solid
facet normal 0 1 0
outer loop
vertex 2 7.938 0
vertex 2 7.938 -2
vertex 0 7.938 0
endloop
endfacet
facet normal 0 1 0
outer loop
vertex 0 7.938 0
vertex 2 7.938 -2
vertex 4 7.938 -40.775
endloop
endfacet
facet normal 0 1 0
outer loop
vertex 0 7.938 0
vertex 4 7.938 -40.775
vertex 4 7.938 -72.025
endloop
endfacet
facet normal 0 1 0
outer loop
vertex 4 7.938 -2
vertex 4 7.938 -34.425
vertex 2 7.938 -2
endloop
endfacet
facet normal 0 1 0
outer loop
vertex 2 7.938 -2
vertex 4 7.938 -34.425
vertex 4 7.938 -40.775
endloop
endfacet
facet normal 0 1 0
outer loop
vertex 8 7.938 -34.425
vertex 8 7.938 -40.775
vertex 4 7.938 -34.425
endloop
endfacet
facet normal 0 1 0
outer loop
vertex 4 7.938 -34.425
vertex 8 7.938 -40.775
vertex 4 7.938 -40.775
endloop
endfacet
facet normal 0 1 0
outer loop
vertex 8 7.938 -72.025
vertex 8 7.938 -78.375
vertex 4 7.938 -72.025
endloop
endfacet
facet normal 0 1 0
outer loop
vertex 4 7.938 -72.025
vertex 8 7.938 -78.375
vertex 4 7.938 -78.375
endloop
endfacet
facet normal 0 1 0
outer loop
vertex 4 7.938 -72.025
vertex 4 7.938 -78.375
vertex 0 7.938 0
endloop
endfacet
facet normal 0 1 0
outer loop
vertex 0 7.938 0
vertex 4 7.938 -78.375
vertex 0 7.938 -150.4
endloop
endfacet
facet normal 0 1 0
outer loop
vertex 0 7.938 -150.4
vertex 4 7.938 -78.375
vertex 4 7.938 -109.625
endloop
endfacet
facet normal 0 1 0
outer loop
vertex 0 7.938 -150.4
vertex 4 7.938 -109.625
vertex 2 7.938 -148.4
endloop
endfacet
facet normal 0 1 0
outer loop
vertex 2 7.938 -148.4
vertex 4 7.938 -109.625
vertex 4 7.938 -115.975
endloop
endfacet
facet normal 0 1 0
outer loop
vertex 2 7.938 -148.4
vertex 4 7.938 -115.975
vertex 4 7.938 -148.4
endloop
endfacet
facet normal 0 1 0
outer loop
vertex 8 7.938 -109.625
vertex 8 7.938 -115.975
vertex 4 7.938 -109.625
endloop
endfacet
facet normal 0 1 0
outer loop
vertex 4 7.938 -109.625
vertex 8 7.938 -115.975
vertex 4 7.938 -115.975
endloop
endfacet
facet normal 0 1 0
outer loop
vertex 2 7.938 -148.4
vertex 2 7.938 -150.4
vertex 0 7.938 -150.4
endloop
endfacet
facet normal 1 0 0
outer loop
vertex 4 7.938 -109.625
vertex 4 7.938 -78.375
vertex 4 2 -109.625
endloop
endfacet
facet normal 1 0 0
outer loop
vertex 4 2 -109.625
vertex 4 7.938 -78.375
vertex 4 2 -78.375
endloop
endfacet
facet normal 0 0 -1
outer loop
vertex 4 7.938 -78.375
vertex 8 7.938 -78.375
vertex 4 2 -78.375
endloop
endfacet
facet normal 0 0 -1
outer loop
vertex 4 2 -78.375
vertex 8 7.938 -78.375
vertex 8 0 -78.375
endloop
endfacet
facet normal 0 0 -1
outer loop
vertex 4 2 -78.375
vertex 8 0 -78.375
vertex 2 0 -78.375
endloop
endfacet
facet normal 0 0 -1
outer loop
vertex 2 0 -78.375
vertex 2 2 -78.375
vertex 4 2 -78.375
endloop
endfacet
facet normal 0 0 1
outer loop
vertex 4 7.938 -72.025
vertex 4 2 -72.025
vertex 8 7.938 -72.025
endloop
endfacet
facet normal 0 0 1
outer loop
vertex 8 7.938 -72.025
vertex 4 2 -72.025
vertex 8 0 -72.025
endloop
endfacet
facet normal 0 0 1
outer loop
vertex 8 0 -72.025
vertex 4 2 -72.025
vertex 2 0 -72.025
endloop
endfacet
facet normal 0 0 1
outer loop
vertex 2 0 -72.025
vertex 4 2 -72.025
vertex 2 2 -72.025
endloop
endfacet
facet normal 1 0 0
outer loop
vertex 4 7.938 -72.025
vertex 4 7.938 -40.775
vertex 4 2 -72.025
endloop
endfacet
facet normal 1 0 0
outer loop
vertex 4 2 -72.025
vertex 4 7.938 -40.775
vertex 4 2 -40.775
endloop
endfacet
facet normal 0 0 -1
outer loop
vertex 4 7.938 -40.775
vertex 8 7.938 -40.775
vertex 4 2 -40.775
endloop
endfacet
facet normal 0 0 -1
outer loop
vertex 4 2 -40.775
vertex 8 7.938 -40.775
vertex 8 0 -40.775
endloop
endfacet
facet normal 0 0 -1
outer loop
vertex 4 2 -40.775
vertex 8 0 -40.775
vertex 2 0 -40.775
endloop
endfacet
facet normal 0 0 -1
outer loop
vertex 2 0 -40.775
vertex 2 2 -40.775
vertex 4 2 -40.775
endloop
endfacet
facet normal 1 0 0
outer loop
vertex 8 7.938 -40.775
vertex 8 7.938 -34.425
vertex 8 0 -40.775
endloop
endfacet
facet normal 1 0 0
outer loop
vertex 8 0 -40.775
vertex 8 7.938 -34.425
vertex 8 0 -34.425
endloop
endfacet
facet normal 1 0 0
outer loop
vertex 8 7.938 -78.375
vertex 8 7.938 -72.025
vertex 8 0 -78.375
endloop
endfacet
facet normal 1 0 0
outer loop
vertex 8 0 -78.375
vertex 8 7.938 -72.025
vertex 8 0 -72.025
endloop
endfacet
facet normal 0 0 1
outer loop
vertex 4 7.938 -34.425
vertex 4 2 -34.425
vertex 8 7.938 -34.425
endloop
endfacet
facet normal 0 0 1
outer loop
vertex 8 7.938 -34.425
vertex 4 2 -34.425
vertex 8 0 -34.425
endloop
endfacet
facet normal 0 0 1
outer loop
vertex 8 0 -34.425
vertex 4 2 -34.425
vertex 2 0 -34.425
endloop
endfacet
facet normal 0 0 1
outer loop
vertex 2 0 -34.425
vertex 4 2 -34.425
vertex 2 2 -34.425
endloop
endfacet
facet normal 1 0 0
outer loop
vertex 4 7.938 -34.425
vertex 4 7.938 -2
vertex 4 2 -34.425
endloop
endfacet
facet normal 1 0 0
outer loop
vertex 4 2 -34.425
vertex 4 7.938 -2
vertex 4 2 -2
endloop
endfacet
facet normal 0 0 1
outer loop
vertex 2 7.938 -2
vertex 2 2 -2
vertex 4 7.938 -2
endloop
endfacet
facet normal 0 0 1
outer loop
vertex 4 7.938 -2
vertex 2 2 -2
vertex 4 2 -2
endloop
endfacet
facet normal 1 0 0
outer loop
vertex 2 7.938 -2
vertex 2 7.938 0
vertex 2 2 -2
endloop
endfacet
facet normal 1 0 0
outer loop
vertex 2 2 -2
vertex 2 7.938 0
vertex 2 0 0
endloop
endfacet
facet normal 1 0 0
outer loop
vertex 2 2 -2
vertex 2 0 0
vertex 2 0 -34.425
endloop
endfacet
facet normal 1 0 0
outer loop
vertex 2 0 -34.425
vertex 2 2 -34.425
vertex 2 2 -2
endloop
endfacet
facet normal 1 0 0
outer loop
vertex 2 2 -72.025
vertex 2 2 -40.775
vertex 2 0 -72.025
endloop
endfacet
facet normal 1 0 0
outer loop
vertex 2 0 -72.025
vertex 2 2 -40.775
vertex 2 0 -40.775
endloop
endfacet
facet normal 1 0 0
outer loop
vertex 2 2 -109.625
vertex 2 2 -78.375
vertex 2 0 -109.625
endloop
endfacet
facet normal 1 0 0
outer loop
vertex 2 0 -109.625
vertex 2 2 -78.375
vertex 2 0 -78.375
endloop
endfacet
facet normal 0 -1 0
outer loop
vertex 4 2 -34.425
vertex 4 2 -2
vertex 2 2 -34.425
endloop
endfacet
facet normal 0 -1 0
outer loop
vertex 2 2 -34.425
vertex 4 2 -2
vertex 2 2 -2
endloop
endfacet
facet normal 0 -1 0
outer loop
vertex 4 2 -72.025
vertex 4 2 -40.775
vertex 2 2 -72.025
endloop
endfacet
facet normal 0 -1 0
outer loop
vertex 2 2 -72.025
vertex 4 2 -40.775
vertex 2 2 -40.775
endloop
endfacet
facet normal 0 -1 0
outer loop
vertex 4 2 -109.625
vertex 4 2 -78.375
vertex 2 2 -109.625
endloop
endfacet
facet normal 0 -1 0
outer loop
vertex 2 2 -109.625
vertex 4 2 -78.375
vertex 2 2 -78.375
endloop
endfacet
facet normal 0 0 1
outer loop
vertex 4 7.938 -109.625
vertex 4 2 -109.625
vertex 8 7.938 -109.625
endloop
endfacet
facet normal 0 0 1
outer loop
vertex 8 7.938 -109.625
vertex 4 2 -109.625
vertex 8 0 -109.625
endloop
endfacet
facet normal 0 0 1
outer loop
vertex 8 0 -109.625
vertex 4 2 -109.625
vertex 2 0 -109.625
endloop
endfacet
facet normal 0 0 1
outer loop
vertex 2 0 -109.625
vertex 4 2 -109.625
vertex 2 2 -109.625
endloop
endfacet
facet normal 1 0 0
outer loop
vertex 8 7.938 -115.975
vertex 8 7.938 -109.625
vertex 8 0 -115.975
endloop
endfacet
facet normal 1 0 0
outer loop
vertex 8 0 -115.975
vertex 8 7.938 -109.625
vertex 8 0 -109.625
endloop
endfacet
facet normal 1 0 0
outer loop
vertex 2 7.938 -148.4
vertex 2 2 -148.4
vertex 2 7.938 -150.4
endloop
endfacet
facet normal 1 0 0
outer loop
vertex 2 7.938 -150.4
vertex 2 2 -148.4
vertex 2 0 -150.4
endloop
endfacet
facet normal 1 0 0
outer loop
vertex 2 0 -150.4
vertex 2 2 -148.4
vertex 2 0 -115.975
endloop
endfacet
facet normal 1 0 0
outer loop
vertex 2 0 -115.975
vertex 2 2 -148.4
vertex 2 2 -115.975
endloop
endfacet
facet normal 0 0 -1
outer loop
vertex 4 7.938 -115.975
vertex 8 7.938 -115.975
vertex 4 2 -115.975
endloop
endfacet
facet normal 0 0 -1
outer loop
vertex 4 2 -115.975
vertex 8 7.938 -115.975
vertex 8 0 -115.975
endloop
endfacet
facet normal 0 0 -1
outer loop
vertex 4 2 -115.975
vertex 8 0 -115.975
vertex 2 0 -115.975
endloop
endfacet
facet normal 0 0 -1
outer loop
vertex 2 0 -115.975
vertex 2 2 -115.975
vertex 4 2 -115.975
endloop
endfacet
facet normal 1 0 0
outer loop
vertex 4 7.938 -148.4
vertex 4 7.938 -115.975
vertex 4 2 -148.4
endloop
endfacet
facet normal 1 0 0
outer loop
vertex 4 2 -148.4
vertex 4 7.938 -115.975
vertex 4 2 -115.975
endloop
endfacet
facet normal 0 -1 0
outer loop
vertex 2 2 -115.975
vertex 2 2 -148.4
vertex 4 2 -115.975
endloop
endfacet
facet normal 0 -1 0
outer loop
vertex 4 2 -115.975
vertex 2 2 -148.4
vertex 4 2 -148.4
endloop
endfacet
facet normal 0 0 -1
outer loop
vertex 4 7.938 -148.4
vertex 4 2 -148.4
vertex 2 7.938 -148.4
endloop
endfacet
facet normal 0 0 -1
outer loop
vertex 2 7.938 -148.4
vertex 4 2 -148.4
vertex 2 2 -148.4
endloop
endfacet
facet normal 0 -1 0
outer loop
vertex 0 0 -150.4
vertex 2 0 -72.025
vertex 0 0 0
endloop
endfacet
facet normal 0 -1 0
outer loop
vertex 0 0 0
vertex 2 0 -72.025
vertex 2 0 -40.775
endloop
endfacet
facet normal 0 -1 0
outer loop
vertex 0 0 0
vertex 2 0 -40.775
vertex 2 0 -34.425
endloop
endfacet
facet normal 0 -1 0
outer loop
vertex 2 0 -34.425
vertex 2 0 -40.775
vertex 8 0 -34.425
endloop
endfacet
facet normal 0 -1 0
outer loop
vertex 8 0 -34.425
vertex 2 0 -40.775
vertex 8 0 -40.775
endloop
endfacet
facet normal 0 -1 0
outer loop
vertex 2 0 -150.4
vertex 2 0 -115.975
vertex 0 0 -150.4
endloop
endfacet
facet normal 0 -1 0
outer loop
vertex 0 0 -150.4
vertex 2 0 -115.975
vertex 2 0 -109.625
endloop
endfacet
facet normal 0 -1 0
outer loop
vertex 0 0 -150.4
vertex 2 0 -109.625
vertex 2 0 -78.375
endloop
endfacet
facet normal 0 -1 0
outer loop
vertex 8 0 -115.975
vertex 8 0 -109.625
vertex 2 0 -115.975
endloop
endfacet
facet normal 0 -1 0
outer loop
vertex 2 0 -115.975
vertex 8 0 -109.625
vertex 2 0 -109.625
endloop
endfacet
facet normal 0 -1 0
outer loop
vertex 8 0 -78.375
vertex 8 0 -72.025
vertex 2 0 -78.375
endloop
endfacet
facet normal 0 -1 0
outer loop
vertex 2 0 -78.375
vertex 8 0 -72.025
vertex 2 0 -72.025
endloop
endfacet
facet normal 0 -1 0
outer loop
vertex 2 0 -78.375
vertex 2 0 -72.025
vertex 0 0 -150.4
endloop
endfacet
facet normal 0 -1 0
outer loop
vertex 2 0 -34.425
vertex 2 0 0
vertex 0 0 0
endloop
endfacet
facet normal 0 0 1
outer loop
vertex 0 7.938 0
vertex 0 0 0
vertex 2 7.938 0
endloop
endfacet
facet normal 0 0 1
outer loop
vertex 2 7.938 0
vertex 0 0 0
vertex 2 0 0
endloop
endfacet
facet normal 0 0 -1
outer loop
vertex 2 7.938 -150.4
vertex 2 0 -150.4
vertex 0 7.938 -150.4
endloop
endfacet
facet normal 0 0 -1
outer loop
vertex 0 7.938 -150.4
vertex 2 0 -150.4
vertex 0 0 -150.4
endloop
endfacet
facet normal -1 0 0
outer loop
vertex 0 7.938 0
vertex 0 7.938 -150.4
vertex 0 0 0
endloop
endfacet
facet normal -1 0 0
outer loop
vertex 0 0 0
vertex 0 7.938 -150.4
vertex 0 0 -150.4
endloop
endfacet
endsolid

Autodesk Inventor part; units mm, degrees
ref_plane "YZ Plane" through (0, 0, 0) normal (1, 0, 0) x (0, 1, 0)
ref_plane "XZ Plane" through (0, 0, 0) normal (0, 1, 0) x (-1, 0, 0)
ref_plane "XY Plane" through (0, 0, 0) normal (0, 0, 1) x (1, 0, 0)
sketch "Sketch1" plane through (0, 0, 0) normal (1, 0, 0) x (0, 1, 0)
  line L0 (0, 0) -> (69.85, 0)
  line L1 (69.85, 0) -> (69.85, -150.4)
  line L2 (69.85, -150.4) -> (0, -150.4)
  line L3 (0, -150.4) -> (0, 0)
  dimension "d0" = 69.85
  dimension "d1" = 150.4
extrude "Extrusion1" add sketch "Sketch1" along normal blind 2
sketch "Sketch2" plane through (2, 0, 0) normal (1, 0, 0) x (0, 0, -1)
  line L0 (150.4, 0) -> (150.4, 69.85) projected
  line L1 (150.4, 69.85) -> (0, 69.85) projected
  line L2 (0, 69.85) -> (0, 0) projected
  line L3 (0, 0) -> (150.4, 0) projected
  line L4 (150.4, 69.85) -> (148.4, 69.85)
  line L5 (148.4, 69.85) -> (148.4, 0)
  line L6 (148.4, 0) -> (150.4, 0)
  line L7 (150.4, 0) -> (150.4, 69.85)
  line L8 (0, 69.85) -> (2, 69.85)
  line L9 (2, 69.85) -> (2, 0)
  line L10 (2, 0) -> (0, 0)
  line L11 (0, 0) -> (0, 69.85)
  line L12 (0, 0) -> (150.4, 0)
  line L13 (150.4, 0) -> (150.4, 2)
  line L14 (150.4, 2) -> (0, 2)
  line L15 (0, 2) -> (0, 0)
  point P0 (2, 2)
  point P1 (148.4, 2)
  dimension "d4" = 2
  dimension "d5" = 2
  dimension "d6" = 2
extrude "Extrusion2" add sketch "Sketch2" along normal blind 2 contours L14 L9 L1 L5
sketch "Sketch3" plane through (4, 0, 0) normal (1, 0, 0) x (0, 0, -1)
  line L0 (150.4, 0) -> (150.4, 69.85) projected
  line L1 (0, 0) -> (150.4, 0) projected
  line L2 (0, 69.85) -> (0, 0) projected
  line L3 (150.4, 69.85) -> (0, 69.85) projected
  line L4 (0, 69.85) -> (75.2, 69.85) construction
  line L5 (75.2, 69.85) -> (75.2, 0) construction
  line L6 (75.2, 0) -> (0, 0) construction
  line L7 (0, 0) -> (0, 69.85) construction
  line L8 (0, 0) -> (150.4, 0) construction
  line L9 (0, 0) -> (37.6, 0) construction
  line L10 (37.6, 0) -> (37.6, 69.85) construction
  line L11 (37.6, 69.85) -> (0, 69.85) construction
  line L12 (0, 69.85) -> (0, 0) construction
  line L13 (150.4, 0) -> (150.4, 69.85) construction
  line L14 (75.2, 69.85) -> (150.4, 69.85) construction
  line L15 (150.4, 69.85) -> (150.4, 0) construction
  line L16 (150.4, 0) -> (75.2, 0) construction
  line L17 (75.2, 0) -> (75.2, 69.85) construction
  line L18 (75.2, 0) -> (112.8, 0) construction
  line L19 (112.8, 0) -> (112.8, 69.85) construction
  line L20 (112.8, 69.85) -> (75.2, 69.85) construction
  line L21 (75.2, 69.85) -> (75.2, 0) construction
  line L22 (34.425, 0) -> (34.425, 69.85) construction
  line L23 (34.425, 69.85) -> (40.775, 69.85) construction
  line L24 (40.775, 69.85) -> (40.775, 0) construction
  line L25 (40.775, 0) -> (34.425, 0) construction
  line L26 (34.425, 0) -> (40.775, 69.85) construction
  line L27 (34.425, 69.85) -> (40.775, 0) construction
  line L28 (72.025, 0) -> (72.025, 69.85) construction
  line L29 (72.025, 69.85) -> (78.375, 69.85) construction
  line L30 (78.375, 69.85) -> (78.375, 0) construction
  line L31 (78.375, 0) -> (72.025, 0) construction
  line L32 (72.025, 0) -> (78.375, 69.85) construction
  line L33 (72.025, 69.85) -> (78.375, 0) construction
  line L34 (109.625, 0) -> (109.625, 69.85) construction
  line L35 (109.625, 69.85) -> (115.975, 69.85) construction
  line L36 (115.975, 69.85) -> (115.975, 0) construction
  line L37 (115.975, 0) -> (109.625, 0) construction
  line L38 (109.625, 0) -> (115.975, 69.85) construction
  line L39 (109.625, 69.85) -> (115.975, 0) construction
  line L40 (34.425, 69.85) -> (40.775, 69.85)
  line L41 (40.775, 69.85) -> (40.775, 0)
  line L42 (40.775, 0) -> (34.425, 0)
  line L43 (34.425, 0) -> (34.425, 69.85)
  line L44 (72.025, 0) -> (78.375, 0)
  line L45 (78.375, 0) -> (78.375, 69.85)
  line L46 (78.375, 69.85) -> (72.025, 69.85)
  line L47 (72.025, 69.85) -> (72.025, 0)
  line L48 (109.625, 69.85) -> (115.975, 69.85)
  line L49 (115.975, 69.85) -> (115.975, 0)
  line L50 (115.975, 0) -> (109.625, 0)
  line L51 (109.625, 0) -> (109.625, 69.85)
  point P0 (37.6, 34.925)
  point P1 (75.2, 34.925)
  point P2 (112.8, 34.925)
  dimension "d9" = 6.35
  dimension "d10" = 6.35
  dimension "d11" = 6.35
extrude "Extrusion3" add sketch "Sketch3" along normal blind 4 contours L1 L51 L3 L49 | L1 L47 L3 L45 | L1 L43 L3 L41
sketch "Sketch4" plane through (0, 69.85, 0) normal (0, 1, 0) x (1, 0, 0)
  line L0 (0, 150.4) -> (0, 0) projected
  line L1 (0, 150.4) -> (0, 0) construction
  line L2 (0, 0) -> (2, 0) construction
  line L3 (2, 2) -> (2, 0) construction
  line L4 (2, 2) -> (4, 2) construction
  line L5 (4, 34.425) -> (4, 2) construction
  line L6 (4, 34.425) -> (8, 34.425) construction
  line L7 (8, 40.775) -> (8, 34.425) construction
  line L8 (4, 40.775) -> (8, 40.775) construction
  line L9 (4, 72.025) -> (4, 40.775) construction
  line L10 (4, 72.025) -> (8, 72.025) construction
  line L11 (8, 78.375) -> (8, 72.025) construction
  line L12 (4, 78.375) -> (8, 78.375) construction
  line L13 (4, 109.625) -> (4, 78.375) construction
  line L14 (4, 109.625) -> (8, 109.625) construction
  line L15 (8, 115.975) -> (8, 109.625) construction
  line L16 (4, 115.975) -> (8, 115.975) construction
  line L17 (4, 148.4) -> (4, 115.975) construction
  line L18 (2, 148.4) -> (4, 148.4) construction
  line L19 (2, 150.4) -> (2, 148.4) construction
  line L20 (0, 150.4) -> (2, 150.4) construction
  line L21 (2, 0) -> (0, 0)
  line L22 (0, 0) -> (0, 150.4)
  line L23 (0, 150.4) -> (2, 150.4)
  line L24 (2, 150.4) -> (2, 0)
  line L25 (2, 0) -> (8, 0)
  line L26 (8, 0) -> (8, 150.4)
  line L27 (8, 150.4) -> (2, 150.4)
  line L28 (2, 150.4) -> (2, 0)
extrude "Extrusion4" cut sketch "Sketch4" against normal blind 2 contours L27 L26 L25 L24
sketch "Sketch5" plane through (0, 67.85, 0) normal (0, 1, 0) x (1, 0, 0)
  line L0 (4, 115.975) -> (8, 115.975) projected
  line L1 (4, 148.4) -> (4, 115.975) projected
  line L2 (2, 148.4) -> (4, 148.4) projected
  line L3 (2, 2) -> (2, 148.4) projected
  line L4 (4, 2) -> (2, 2) projected
  line L5 (4, 34.425) -> (4, 2) projected
  line L6 (8, 34.425) -> (4, 34.425) projected
  line L7 (8, 40.775) -> (8, 34.425) projected
  line L8 (4, 40.775) -> (8, 40.775) projected
  line L9 (4, 72.025) -> (4, 40.775) projected
  line L10 (8, 72.025) -> (4, 72.025) projected
  line L11 (8, 78.375) -> (8, 72.025) projected
  line L12 (4, 78.375) -> (8, 78.375) projected
  line L13 (4, 109.625) -> (4, 78.375) projected
  line L14 (8, 109.625) -> (4, 109.625) projected
  line L15 (8, 115.975) -> (8, 109.625) projected
  line L16 (2, 2) -> (4, 2) projected
  line L17 (2, 2) -> (8, 2)
  line L18 (8, 2) -> (8, 148.4)
  line L19 (8, 148.4) -> (2, 148.4)
  line L20 (2, 148.4) -> (2, 2)
  point P0 (0, 0)
  point P1 (4, 2)
extrude "Extrusion5" add sketch "Sketch5" against normal blind 2 contours L1 L19 L18 L0 | L18 L12 L13 L14 | L18 L8 L9 L10 | L5 L6 L18 L17
sketch "Sketch7" plane through (4, 0, 0) normal (-1, 0, 0) x (0, 0, 1)
  line L0 (-109.625, 2) -> (-115.975, 2) projected
  line L1 (-115.975, 0) -> (-115.975, 2) projected
  line L2 (-109.625, 0) -> (-115.975, 0) projected
  line L3 (-109.625, 2) -> (-109.625, 0) projected
  line L4 (-72.025, 2) -> (-78.375, 2) projected
  line L5 (-78.375, 0) -> (-78.375, 2) projected
  line L6 (-72.025, 0) -> (-78.375, 0) projected
  line L7 (-72.025, 2) -> (-72.025, 0) projected
  line L8 (-34.425, 2) -> (-40.775, 2) projected
  line L9 (-40.775, 0) -> (-40.775, 2) projected
  line L10 (-34.425, 0) -> (-40.775, 0) projected
  line L11 (-34.425, 2) -> (-34.425, 0) projected
  point P0 (0, 0)
extrude "Extrusion6" add sketch "Sketch7" along normal blind 2
sketch "Sketch8" plane through (0, 67.85, 0) normal (0, 1, 0) x (1, 0, 0)
  line L0 (8, 2) -> (8, 148.4) construction
  line L1 (2, 148.4) -> (8, 148.4) construction
  line L2 (2, 2) -> (2, 148.4) construction
  line L3 (8, 2) -> (2, 2) construction
  line L4 (8, 34.425) -> (2, 34.425) construction
  line L5 (2, 34.425) -> (2, 40.775) construction
  line L6 (2, 40.775) -> (8, 40.775) construction
  line L7 (8, 40.775) -> (8, 34.425) construction
  circle A0 centre (5, 37.6) radius 2.25 construction
  line L8 (2, 2) -> (2, 148.4) construction
  line L9 (8, 109.625) -> (2, 109.625) construction
  line L10 (2, 109.625) -> (2, 115.975) construction
  line L11 (2, 115.975) -> (8, 115.975) construction
  line L12 (8, 115.975) -> (8, 109.625) construction
  circle A1 centre (5, 112.8) radius 2.25 construction
  circle A2 centre (5, 37.6) radius 2.25
  circle A3 centre (5, 112.8) radius 2.25
  point P0 (0, 0)
  point P1 (8, 72.025)
  point P2 (8, 78.375)
  dimension "d20" = 4.5
  dimension "d21" = 4.5
extrude "Extrusion7" cut sketch "Sketch8" against normal blind 5
sketch "Sketch9" plane through (0, 69.85, 0) normal (0, 1, 0) x (1, 0, 0)
  line L0 (-2.5975, -3.6239) -> (10.7707, -3.6239)
  line L1 (10.7707, -3.6239) -> (10.7707, 152.0694)
  line L2 (10.7707, 152.0694) -> (-2.5975, 152.0694)
  line L3 (-2.5975, 152.0694) -> (-2.5975, -3.6239)
  point P0 (0, 0)
extrude "Extrusion8" cut sketch "Sketch9" against normal blind 61.9125
properties part number "leftwall"
